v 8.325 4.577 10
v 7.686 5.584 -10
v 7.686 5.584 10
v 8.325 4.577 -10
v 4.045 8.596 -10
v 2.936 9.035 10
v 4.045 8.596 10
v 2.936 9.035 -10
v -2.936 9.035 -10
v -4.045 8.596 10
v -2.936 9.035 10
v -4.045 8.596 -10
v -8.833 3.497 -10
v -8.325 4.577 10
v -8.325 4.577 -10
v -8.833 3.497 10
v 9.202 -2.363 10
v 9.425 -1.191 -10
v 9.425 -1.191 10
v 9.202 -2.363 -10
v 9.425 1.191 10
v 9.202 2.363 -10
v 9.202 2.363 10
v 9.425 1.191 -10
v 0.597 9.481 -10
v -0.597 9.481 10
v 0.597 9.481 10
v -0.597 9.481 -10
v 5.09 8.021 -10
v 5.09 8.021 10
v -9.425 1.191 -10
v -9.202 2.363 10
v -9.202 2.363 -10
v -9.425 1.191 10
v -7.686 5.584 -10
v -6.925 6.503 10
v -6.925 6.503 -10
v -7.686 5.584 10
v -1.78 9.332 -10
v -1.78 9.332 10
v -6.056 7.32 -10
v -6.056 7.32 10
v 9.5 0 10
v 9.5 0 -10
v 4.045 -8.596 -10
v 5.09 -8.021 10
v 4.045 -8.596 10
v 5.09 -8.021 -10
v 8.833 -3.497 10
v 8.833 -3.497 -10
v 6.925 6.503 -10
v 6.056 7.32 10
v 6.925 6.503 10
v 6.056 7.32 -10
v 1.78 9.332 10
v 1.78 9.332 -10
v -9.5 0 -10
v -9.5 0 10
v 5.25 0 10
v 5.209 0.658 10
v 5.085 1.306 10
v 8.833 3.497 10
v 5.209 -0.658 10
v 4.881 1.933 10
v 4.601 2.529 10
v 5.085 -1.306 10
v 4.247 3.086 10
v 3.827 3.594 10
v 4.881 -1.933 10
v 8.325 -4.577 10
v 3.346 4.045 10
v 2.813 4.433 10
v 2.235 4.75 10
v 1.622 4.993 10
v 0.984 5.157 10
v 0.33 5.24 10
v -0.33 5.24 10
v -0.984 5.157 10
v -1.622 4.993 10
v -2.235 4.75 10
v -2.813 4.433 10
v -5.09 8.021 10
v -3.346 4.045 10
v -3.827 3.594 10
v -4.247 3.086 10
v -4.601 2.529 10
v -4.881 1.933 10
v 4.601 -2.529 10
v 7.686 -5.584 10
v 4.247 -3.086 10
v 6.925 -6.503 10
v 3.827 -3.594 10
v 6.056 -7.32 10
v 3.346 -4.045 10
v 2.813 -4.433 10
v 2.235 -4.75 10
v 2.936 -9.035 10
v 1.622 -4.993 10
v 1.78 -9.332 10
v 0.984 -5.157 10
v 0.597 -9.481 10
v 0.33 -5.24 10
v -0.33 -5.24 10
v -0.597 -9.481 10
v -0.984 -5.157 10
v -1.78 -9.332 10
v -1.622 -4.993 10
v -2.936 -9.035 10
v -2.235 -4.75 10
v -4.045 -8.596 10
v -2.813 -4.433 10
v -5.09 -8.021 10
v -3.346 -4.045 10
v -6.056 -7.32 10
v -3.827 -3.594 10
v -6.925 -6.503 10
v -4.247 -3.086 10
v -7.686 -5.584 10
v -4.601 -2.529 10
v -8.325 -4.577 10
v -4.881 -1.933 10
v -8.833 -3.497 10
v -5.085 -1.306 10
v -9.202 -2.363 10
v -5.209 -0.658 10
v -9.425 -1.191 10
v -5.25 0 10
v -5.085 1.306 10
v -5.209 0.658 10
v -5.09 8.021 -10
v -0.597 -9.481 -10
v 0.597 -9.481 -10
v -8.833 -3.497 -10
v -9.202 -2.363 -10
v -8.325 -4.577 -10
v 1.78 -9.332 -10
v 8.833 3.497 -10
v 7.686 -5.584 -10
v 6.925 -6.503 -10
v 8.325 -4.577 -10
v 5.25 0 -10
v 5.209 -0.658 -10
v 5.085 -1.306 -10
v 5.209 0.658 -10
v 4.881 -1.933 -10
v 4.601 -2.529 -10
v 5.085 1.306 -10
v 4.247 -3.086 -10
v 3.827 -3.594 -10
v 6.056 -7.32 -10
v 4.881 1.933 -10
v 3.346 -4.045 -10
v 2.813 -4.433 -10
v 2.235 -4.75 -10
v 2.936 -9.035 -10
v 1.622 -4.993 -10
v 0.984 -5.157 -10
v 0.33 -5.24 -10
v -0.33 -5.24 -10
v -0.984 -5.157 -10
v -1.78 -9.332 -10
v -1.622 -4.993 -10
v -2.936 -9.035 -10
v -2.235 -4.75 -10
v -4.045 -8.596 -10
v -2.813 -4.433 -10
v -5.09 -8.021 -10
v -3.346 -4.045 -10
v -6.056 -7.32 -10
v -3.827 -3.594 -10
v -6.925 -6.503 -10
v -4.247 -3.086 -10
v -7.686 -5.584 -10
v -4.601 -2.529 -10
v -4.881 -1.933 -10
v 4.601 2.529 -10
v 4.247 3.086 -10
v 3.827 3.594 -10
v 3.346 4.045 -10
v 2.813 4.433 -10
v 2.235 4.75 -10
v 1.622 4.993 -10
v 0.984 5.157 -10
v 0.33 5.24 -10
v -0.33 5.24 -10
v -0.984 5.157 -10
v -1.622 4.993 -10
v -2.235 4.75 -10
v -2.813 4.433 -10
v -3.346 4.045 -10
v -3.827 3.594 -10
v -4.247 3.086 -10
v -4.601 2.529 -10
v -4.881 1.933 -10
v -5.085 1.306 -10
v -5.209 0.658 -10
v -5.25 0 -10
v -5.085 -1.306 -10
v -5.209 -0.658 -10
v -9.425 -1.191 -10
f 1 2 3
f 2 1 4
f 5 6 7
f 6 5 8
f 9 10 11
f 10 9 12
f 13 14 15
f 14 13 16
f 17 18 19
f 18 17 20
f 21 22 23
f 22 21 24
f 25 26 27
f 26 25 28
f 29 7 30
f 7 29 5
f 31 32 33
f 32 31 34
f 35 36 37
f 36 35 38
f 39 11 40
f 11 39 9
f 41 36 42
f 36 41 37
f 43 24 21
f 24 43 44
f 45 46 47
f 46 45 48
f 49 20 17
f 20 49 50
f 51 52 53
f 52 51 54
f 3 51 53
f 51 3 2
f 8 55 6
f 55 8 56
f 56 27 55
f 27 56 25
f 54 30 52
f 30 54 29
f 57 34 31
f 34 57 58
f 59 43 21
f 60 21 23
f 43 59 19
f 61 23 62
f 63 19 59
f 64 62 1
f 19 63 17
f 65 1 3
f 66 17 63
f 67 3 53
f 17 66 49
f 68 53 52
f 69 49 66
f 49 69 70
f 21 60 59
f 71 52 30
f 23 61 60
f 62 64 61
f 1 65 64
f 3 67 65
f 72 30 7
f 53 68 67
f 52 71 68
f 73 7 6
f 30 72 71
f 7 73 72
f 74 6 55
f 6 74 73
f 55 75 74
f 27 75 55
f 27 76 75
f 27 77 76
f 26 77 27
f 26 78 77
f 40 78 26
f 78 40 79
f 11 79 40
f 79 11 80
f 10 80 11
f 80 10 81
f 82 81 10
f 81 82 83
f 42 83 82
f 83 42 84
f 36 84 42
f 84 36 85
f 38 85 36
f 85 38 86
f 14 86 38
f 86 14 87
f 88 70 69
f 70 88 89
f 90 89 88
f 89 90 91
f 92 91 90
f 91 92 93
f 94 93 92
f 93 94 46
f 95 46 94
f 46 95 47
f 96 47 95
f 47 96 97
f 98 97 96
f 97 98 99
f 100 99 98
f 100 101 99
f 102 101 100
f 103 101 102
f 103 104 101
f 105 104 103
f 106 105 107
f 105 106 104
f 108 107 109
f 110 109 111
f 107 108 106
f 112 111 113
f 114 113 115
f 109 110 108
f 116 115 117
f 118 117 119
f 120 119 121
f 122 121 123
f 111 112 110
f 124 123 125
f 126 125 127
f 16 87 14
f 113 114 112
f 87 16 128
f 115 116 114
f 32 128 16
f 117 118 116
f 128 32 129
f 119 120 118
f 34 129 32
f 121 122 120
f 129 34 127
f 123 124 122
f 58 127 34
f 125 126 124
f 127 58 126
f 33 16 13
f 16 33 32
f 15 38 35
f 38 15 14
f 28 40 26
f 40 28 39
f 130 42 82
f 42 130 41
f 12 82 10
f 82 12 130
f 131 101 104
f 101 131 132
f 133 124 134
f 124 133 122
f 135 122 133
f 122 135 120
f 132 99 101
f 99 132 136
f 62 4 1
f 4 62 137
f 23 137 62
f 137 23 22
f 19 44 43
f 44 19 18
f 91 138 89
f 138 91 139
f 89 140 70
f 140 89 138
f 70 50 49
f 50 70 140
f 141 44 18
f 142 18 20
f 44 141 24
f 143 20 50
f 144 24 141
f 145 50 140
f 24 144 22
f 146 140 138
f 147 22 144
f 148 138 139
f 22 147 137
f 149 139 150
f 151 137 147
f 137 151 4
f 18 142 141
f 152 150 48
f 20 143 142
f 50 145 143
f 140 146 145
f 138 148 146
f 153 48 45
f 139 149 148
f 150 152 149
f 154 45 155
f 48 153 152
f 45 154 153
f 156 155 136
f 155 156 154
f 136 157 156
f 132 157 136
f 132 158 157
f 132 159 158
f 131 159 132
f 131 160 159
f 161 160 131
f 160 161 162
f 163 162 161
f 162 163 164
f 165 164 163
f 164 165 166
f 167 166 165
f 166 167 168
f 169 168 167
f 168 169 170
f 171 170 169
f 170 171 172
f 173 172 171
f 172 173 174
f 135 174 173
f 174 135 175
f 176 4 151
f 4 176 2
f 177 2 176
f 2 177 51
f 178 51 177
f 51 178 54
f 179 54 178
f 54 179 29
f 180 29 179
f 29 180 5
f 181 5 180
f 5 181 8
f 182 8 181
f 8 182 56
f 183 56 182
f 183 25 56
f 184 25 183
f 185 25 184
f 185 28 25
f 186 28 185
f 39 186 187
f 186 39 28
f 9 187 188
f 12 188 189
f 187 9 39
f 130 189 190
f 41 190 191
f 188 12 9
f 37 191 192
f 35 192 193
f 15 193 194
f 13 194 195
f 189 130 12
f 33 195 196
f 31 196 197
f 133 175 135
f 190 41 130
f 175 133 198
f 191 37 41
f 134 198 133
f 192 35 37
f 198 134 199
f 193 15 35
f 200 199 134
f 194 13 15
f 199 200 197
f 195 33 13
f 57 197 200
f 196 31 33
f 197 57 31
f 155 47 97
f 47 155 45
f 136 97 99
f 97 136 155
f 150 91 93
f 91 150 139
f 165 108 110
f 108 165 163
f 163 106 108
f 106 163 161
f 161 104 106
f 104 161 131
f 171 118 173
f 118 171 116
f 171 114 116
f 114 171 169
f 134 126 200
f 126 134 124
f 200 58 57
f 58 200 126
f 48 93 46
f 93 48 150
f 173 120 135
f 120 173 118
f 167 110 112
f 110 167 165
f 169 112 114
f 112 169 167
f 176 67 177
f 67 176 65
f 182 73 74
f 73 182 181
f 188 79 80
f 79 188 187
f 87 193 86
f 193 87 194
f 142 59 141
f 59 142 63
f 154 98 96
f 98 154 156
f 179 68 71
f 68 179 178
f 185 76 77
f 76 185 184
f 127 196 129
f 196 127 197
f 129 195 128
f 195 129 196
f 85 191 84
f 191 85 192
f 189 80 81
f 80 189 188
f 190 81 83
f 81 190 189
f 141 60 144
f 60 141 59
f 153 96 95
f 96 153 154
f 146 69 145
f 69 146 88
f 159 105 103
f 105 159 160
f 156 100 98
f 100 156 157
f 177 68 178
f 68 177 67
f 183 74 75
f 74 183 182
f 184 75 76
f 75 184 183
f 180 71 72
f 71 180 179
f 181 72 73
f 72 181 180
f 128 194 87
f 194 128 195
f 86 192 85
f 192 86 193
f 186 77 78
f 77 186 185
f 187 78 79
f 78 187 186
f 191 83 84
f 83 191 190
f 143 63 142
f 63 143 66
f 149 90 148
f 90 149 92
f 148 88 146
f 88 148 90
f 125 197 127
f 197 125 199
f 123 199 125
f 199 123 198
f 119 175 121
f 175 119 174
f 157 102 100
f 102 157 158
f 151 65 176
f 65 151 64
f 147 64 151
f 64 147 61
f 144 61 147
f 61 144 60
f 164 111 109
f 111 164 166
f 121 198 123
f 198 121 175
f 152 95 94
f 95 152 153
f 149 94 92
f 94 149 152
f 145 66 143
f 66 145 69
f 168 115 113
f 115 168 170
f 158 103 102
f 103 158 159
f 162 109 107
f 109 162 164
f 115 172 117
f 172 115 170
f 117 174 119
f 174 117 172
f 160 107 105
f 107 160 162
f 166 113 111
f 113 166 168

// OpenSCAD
$fn = 50;


difference() {
	union() {
		translate(v = [0, 0, -10.0000000000]) {
			cylinder(h = 20, r = 9.5000000000);
		}
	}
	union() {
		translate(v = [0, 0, -100.0000000000]) {
			cylinder(h = 200, r = 5.2500000000);
		}
	}
}
